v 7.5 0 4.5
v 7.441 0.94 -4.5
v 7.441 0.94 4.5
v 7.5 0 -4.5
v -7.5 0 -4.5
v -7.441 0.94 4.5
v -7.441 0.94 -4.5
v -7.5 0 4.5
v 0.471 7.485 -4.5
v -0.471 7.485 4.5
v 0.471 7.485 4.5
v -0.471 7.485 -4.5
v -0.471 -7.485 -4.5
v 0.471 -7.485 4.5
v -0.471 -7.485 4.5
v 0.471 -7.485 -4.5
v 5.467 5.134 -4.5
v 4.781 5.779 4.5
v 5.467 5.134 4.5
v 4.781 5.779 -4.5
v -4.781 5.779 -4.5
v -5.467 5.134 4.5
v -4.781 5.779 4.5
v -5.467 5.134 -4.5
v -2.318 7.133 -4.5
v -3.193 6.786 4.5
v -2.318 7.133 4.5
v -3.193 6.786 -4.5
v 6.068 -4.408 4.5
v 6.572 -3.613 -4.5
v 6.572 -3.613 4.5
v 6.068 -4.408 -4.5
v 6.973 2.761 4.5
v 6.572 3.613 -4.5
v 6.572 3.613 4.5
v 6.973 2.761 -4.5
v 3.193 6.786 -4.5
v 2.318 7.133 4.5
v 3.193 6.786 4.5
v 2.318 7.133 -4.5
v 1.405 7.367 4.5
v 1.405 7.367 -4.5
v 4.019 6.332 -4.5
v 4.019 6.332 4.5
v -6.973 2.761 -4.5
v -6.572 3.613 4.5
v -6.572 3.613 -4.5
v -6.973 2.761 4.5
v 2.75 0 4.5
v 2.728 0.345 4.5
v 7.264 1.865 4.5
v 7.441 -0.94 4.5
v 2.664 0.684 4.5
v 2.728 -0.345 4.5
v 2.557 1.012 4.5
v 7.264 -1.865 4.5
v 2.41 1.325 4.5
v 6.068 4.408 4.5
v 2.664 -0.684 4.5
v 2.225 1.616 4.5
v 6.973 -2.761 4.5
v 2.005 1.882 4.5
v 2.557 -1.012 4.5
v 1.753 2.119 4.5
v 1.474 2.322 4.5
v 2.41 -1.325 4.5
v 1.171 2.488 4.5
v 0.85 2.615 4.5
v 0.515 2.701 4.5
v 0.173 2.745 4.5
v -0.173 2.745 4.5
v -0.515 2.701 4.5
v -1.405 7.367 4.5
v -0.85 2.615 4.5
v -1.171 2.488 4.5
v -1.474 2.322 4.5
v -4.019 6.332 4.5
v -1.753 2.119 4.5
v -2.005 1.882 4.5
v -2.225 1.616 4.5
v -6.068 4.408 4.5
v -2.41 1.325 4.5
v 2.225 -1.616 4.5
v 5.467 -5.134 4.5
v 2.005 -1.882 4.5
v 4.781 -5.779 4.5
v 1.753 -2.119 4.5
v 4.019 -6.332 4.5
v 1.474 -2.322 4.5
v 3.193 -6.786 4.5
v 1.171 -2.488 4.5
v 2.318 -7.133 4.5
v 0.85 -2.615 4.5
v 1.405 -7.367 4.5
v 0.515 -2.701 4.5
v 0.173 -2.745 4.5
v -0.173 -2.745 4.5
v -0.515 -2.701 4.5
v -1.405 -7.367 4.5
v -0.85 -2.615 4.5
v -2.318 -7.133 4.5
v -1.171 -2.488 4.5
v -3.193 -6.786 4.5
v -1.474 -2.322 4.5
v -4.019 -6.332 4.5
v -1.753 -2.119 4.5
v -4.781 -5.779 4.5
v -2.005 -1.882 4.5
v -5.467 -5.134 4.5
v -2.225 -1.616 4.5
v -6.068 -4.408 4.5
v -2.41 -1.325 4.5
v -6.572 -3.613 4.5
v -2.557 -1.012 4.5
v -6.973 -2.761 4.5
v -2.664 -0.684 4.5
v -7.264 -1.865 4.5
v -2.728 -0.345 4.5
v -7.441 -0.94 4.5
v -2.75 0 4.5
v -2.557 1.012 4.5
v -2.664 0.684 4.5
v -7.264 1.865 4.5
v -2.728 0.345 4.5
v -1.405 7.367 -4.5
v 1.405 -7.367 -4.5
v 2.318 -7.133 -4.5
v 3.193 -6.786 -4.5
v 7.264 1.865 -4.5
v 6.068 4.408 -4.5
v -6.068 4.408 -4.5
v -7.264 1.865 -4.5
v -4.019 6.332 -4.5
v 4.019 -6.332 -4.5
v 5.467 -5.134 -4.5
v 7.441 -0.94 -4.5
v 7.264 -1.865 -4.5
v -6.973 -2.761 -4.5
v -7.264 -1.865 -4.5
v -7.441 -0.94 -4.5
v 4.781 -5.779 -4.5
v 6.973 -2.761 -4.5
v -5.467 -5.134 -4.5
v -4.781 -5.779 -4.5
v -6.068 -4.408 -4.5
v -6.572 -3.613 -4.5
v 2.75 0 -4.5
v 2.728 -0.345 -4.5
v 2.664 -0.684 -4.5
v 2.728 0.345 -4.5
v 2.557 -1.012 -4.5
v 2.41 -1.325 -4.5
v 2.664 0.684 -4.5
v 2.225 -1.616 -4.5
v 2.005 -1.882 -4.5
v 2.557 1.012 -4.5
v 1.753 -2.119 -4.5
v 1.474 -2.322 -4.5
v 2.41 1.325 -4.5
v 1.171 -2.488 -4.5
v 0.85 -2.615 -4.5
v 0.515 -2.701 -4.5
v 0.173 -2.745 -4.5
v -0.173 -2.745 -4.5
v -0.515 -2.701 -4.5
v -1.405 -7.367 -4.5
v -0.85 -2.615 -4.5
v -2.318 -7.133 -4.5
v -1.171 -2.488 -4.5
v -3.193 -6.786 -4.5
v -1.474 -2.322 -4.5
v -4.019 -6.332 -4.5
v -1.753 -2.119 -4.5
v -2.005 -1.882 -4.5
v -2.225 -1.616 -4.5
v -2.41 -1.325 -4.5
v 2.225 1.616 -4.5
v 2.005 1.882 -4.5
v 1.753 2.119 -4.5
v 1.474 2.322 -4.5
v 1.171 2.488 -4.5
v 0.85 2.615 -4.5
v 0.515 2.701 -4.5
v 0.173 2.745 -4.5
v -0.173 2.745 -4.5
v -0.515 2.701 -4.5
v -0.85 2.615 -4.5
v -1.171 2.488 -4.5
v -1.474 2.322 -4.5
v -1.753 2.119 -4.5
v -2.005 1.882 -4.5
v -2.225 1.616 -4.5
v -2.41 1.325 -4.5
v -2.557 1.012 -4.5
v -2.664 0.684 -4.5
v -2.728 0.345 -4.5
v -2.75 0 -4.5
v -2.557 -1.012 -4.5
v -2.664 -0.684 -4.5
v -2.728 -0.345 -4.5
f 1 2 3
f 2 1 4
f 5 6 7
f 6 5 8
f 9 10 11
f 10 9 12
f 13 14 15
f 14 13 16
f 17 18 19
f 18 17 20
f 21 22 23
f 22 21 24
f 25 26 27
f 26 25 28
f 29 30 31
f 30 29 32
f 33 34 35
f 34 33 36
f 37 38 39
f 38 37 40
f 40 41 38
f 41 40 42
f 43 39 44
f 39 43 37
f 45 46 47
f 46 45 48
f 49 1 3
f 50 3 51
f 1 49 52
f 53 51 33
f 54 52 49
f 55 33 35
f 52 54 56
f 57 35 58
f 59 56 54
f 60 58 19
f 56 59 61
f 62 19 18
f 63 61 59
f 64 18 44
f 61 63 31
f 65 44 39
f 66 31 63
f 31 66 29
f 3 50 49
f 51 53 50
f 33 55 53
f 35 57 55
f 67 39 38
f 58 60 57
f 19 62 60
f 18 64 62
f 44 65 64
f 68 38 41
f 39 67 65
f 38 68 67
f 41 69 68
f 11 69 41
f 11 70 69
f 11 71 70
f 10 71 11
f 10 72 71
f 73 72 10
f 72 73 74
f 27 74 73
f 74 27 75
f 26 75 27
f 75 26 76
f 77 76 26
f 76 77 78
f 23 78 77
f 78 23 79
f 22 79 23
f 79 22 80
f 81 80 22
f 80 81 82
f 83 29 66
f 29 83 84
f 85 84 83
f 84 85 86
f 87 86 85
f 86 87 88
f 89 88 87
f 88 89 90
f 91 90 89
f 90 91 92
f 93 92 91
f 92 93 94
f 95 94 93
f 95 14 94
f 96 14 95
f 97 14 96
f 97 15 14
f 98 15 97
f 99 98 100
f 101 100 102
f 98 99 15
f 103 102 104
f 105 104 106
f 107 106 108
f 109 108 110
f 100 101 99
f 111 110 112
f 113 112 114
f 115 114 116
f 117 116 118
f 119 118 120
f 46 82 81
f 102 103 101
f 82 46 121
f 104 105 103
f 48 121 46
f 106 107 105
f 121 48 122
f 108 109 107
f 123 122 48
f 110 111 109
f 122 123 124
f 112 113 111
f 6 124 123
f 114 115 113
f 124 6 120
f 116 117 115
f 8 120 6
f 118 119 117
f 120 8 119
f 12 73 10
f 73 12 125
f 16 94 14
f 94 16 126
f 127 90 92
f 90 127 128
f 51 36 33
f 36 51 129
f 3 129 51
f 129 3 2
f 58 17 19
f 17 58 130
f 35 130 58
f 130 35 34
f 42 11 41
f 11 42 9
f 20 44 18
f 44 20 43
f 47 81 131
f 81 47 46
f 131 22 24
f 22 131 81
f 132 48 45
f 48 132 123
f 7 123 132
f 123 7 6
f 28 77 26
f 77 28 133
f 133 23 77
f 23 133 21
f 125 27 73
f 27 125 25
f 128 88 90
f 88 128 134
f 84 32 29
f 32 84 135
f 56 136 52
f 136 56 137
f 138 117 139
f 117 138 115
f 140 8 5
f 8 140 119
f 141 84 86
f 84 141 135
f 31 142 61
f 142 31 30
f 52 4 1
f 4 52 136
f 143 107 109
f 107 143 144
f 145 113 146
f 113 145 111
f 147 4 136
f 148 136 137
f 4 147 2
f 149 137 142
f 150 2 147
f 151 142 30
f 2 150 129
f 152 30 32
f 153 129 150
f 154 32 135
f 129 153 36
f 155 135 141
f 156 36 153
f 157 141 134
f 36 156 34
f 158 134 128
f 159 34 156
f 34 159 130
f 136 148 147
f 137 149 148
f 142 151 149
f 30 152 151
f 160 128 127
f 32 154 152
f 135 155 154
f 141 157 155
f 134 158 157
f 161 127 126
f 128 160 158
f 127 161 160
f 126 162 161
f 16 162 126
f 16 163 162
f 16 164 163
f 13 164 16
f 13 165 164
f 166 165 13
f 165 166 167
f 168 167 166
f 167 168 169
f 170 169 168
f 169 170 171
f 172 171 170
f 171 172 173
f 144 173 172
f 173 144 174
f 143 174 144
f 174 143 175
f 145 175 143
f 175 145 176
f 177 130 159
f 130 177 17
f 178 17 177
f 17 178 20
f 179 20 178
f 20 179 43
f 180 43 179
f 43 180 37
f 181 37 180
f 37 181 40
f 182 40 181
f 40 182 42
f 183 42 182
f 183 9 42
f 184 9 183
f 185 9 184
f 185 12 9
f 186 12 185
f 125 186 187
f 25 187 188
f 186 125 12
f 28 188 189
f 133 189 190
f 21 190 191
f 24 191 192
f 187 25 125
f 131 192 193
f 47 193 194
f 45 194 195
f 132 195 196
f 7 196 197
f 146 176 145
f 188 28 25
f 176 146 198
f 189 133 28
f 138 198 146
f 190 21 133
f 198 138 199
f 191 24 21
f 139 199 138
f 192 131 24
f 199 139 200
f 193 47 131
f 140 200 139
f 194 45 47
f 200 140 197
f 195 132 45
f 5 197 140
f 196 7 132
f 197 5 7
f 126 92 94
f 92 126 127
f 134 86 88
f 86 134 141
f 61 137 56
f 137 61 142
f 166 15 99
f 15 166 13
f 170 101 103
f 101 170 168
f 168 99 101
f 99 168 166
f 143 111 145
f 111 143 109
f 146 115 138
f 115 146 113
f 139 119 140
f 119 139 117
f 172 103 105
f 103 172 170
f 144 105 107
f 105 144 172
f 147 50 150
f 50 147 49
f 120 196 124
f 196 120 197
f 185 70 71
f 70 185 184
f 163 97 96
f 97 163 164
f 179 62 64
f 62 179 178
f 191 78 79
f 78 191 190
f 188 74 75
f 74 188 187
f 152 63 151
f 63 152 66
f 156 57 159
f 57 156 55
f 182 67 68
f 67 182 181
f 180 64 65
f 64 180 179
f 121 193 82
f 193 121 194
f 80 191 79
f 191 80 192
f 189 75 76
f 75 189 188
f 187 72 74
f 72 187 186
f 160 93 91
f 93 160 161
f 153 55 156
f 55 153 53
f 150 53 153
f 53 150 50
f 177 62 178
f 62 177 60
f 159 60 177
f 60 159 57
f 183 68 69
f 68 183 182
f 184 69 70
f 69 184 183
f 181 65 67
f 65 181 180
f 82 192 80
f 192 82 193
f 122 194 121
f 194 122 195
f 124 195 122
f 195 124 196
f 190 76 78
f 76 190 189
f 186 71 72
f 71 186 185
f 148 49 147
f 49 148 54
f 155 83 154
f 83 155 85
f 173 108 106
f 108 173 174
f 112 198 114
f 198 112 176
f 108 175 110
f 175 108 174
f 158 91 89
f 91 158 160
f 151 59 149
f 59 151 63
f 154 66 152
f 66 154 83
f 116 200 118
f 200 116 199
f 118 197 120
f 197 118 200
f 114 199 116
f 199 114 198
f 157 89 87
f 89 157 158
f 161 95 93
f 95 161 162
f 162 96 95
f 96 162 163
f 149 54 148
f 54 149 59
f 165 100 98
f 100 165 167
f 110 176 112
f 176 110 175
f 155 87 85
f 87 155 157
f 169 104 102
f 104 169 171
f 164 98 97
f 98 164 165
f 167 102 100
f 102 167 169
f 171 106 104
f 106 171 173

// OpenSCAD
$fn = 50;


difference() {
	union() {
		translate(v = [0, 0, -4.5000000000]) {
			cylinder(h = 9, r = 7.5000000000);
		}
	}
	union() {
		translate(v = [0, 0, -100.0000000000]) {
			cylinder(h = 200, r = 2.7500000000);
		}
	}
}
